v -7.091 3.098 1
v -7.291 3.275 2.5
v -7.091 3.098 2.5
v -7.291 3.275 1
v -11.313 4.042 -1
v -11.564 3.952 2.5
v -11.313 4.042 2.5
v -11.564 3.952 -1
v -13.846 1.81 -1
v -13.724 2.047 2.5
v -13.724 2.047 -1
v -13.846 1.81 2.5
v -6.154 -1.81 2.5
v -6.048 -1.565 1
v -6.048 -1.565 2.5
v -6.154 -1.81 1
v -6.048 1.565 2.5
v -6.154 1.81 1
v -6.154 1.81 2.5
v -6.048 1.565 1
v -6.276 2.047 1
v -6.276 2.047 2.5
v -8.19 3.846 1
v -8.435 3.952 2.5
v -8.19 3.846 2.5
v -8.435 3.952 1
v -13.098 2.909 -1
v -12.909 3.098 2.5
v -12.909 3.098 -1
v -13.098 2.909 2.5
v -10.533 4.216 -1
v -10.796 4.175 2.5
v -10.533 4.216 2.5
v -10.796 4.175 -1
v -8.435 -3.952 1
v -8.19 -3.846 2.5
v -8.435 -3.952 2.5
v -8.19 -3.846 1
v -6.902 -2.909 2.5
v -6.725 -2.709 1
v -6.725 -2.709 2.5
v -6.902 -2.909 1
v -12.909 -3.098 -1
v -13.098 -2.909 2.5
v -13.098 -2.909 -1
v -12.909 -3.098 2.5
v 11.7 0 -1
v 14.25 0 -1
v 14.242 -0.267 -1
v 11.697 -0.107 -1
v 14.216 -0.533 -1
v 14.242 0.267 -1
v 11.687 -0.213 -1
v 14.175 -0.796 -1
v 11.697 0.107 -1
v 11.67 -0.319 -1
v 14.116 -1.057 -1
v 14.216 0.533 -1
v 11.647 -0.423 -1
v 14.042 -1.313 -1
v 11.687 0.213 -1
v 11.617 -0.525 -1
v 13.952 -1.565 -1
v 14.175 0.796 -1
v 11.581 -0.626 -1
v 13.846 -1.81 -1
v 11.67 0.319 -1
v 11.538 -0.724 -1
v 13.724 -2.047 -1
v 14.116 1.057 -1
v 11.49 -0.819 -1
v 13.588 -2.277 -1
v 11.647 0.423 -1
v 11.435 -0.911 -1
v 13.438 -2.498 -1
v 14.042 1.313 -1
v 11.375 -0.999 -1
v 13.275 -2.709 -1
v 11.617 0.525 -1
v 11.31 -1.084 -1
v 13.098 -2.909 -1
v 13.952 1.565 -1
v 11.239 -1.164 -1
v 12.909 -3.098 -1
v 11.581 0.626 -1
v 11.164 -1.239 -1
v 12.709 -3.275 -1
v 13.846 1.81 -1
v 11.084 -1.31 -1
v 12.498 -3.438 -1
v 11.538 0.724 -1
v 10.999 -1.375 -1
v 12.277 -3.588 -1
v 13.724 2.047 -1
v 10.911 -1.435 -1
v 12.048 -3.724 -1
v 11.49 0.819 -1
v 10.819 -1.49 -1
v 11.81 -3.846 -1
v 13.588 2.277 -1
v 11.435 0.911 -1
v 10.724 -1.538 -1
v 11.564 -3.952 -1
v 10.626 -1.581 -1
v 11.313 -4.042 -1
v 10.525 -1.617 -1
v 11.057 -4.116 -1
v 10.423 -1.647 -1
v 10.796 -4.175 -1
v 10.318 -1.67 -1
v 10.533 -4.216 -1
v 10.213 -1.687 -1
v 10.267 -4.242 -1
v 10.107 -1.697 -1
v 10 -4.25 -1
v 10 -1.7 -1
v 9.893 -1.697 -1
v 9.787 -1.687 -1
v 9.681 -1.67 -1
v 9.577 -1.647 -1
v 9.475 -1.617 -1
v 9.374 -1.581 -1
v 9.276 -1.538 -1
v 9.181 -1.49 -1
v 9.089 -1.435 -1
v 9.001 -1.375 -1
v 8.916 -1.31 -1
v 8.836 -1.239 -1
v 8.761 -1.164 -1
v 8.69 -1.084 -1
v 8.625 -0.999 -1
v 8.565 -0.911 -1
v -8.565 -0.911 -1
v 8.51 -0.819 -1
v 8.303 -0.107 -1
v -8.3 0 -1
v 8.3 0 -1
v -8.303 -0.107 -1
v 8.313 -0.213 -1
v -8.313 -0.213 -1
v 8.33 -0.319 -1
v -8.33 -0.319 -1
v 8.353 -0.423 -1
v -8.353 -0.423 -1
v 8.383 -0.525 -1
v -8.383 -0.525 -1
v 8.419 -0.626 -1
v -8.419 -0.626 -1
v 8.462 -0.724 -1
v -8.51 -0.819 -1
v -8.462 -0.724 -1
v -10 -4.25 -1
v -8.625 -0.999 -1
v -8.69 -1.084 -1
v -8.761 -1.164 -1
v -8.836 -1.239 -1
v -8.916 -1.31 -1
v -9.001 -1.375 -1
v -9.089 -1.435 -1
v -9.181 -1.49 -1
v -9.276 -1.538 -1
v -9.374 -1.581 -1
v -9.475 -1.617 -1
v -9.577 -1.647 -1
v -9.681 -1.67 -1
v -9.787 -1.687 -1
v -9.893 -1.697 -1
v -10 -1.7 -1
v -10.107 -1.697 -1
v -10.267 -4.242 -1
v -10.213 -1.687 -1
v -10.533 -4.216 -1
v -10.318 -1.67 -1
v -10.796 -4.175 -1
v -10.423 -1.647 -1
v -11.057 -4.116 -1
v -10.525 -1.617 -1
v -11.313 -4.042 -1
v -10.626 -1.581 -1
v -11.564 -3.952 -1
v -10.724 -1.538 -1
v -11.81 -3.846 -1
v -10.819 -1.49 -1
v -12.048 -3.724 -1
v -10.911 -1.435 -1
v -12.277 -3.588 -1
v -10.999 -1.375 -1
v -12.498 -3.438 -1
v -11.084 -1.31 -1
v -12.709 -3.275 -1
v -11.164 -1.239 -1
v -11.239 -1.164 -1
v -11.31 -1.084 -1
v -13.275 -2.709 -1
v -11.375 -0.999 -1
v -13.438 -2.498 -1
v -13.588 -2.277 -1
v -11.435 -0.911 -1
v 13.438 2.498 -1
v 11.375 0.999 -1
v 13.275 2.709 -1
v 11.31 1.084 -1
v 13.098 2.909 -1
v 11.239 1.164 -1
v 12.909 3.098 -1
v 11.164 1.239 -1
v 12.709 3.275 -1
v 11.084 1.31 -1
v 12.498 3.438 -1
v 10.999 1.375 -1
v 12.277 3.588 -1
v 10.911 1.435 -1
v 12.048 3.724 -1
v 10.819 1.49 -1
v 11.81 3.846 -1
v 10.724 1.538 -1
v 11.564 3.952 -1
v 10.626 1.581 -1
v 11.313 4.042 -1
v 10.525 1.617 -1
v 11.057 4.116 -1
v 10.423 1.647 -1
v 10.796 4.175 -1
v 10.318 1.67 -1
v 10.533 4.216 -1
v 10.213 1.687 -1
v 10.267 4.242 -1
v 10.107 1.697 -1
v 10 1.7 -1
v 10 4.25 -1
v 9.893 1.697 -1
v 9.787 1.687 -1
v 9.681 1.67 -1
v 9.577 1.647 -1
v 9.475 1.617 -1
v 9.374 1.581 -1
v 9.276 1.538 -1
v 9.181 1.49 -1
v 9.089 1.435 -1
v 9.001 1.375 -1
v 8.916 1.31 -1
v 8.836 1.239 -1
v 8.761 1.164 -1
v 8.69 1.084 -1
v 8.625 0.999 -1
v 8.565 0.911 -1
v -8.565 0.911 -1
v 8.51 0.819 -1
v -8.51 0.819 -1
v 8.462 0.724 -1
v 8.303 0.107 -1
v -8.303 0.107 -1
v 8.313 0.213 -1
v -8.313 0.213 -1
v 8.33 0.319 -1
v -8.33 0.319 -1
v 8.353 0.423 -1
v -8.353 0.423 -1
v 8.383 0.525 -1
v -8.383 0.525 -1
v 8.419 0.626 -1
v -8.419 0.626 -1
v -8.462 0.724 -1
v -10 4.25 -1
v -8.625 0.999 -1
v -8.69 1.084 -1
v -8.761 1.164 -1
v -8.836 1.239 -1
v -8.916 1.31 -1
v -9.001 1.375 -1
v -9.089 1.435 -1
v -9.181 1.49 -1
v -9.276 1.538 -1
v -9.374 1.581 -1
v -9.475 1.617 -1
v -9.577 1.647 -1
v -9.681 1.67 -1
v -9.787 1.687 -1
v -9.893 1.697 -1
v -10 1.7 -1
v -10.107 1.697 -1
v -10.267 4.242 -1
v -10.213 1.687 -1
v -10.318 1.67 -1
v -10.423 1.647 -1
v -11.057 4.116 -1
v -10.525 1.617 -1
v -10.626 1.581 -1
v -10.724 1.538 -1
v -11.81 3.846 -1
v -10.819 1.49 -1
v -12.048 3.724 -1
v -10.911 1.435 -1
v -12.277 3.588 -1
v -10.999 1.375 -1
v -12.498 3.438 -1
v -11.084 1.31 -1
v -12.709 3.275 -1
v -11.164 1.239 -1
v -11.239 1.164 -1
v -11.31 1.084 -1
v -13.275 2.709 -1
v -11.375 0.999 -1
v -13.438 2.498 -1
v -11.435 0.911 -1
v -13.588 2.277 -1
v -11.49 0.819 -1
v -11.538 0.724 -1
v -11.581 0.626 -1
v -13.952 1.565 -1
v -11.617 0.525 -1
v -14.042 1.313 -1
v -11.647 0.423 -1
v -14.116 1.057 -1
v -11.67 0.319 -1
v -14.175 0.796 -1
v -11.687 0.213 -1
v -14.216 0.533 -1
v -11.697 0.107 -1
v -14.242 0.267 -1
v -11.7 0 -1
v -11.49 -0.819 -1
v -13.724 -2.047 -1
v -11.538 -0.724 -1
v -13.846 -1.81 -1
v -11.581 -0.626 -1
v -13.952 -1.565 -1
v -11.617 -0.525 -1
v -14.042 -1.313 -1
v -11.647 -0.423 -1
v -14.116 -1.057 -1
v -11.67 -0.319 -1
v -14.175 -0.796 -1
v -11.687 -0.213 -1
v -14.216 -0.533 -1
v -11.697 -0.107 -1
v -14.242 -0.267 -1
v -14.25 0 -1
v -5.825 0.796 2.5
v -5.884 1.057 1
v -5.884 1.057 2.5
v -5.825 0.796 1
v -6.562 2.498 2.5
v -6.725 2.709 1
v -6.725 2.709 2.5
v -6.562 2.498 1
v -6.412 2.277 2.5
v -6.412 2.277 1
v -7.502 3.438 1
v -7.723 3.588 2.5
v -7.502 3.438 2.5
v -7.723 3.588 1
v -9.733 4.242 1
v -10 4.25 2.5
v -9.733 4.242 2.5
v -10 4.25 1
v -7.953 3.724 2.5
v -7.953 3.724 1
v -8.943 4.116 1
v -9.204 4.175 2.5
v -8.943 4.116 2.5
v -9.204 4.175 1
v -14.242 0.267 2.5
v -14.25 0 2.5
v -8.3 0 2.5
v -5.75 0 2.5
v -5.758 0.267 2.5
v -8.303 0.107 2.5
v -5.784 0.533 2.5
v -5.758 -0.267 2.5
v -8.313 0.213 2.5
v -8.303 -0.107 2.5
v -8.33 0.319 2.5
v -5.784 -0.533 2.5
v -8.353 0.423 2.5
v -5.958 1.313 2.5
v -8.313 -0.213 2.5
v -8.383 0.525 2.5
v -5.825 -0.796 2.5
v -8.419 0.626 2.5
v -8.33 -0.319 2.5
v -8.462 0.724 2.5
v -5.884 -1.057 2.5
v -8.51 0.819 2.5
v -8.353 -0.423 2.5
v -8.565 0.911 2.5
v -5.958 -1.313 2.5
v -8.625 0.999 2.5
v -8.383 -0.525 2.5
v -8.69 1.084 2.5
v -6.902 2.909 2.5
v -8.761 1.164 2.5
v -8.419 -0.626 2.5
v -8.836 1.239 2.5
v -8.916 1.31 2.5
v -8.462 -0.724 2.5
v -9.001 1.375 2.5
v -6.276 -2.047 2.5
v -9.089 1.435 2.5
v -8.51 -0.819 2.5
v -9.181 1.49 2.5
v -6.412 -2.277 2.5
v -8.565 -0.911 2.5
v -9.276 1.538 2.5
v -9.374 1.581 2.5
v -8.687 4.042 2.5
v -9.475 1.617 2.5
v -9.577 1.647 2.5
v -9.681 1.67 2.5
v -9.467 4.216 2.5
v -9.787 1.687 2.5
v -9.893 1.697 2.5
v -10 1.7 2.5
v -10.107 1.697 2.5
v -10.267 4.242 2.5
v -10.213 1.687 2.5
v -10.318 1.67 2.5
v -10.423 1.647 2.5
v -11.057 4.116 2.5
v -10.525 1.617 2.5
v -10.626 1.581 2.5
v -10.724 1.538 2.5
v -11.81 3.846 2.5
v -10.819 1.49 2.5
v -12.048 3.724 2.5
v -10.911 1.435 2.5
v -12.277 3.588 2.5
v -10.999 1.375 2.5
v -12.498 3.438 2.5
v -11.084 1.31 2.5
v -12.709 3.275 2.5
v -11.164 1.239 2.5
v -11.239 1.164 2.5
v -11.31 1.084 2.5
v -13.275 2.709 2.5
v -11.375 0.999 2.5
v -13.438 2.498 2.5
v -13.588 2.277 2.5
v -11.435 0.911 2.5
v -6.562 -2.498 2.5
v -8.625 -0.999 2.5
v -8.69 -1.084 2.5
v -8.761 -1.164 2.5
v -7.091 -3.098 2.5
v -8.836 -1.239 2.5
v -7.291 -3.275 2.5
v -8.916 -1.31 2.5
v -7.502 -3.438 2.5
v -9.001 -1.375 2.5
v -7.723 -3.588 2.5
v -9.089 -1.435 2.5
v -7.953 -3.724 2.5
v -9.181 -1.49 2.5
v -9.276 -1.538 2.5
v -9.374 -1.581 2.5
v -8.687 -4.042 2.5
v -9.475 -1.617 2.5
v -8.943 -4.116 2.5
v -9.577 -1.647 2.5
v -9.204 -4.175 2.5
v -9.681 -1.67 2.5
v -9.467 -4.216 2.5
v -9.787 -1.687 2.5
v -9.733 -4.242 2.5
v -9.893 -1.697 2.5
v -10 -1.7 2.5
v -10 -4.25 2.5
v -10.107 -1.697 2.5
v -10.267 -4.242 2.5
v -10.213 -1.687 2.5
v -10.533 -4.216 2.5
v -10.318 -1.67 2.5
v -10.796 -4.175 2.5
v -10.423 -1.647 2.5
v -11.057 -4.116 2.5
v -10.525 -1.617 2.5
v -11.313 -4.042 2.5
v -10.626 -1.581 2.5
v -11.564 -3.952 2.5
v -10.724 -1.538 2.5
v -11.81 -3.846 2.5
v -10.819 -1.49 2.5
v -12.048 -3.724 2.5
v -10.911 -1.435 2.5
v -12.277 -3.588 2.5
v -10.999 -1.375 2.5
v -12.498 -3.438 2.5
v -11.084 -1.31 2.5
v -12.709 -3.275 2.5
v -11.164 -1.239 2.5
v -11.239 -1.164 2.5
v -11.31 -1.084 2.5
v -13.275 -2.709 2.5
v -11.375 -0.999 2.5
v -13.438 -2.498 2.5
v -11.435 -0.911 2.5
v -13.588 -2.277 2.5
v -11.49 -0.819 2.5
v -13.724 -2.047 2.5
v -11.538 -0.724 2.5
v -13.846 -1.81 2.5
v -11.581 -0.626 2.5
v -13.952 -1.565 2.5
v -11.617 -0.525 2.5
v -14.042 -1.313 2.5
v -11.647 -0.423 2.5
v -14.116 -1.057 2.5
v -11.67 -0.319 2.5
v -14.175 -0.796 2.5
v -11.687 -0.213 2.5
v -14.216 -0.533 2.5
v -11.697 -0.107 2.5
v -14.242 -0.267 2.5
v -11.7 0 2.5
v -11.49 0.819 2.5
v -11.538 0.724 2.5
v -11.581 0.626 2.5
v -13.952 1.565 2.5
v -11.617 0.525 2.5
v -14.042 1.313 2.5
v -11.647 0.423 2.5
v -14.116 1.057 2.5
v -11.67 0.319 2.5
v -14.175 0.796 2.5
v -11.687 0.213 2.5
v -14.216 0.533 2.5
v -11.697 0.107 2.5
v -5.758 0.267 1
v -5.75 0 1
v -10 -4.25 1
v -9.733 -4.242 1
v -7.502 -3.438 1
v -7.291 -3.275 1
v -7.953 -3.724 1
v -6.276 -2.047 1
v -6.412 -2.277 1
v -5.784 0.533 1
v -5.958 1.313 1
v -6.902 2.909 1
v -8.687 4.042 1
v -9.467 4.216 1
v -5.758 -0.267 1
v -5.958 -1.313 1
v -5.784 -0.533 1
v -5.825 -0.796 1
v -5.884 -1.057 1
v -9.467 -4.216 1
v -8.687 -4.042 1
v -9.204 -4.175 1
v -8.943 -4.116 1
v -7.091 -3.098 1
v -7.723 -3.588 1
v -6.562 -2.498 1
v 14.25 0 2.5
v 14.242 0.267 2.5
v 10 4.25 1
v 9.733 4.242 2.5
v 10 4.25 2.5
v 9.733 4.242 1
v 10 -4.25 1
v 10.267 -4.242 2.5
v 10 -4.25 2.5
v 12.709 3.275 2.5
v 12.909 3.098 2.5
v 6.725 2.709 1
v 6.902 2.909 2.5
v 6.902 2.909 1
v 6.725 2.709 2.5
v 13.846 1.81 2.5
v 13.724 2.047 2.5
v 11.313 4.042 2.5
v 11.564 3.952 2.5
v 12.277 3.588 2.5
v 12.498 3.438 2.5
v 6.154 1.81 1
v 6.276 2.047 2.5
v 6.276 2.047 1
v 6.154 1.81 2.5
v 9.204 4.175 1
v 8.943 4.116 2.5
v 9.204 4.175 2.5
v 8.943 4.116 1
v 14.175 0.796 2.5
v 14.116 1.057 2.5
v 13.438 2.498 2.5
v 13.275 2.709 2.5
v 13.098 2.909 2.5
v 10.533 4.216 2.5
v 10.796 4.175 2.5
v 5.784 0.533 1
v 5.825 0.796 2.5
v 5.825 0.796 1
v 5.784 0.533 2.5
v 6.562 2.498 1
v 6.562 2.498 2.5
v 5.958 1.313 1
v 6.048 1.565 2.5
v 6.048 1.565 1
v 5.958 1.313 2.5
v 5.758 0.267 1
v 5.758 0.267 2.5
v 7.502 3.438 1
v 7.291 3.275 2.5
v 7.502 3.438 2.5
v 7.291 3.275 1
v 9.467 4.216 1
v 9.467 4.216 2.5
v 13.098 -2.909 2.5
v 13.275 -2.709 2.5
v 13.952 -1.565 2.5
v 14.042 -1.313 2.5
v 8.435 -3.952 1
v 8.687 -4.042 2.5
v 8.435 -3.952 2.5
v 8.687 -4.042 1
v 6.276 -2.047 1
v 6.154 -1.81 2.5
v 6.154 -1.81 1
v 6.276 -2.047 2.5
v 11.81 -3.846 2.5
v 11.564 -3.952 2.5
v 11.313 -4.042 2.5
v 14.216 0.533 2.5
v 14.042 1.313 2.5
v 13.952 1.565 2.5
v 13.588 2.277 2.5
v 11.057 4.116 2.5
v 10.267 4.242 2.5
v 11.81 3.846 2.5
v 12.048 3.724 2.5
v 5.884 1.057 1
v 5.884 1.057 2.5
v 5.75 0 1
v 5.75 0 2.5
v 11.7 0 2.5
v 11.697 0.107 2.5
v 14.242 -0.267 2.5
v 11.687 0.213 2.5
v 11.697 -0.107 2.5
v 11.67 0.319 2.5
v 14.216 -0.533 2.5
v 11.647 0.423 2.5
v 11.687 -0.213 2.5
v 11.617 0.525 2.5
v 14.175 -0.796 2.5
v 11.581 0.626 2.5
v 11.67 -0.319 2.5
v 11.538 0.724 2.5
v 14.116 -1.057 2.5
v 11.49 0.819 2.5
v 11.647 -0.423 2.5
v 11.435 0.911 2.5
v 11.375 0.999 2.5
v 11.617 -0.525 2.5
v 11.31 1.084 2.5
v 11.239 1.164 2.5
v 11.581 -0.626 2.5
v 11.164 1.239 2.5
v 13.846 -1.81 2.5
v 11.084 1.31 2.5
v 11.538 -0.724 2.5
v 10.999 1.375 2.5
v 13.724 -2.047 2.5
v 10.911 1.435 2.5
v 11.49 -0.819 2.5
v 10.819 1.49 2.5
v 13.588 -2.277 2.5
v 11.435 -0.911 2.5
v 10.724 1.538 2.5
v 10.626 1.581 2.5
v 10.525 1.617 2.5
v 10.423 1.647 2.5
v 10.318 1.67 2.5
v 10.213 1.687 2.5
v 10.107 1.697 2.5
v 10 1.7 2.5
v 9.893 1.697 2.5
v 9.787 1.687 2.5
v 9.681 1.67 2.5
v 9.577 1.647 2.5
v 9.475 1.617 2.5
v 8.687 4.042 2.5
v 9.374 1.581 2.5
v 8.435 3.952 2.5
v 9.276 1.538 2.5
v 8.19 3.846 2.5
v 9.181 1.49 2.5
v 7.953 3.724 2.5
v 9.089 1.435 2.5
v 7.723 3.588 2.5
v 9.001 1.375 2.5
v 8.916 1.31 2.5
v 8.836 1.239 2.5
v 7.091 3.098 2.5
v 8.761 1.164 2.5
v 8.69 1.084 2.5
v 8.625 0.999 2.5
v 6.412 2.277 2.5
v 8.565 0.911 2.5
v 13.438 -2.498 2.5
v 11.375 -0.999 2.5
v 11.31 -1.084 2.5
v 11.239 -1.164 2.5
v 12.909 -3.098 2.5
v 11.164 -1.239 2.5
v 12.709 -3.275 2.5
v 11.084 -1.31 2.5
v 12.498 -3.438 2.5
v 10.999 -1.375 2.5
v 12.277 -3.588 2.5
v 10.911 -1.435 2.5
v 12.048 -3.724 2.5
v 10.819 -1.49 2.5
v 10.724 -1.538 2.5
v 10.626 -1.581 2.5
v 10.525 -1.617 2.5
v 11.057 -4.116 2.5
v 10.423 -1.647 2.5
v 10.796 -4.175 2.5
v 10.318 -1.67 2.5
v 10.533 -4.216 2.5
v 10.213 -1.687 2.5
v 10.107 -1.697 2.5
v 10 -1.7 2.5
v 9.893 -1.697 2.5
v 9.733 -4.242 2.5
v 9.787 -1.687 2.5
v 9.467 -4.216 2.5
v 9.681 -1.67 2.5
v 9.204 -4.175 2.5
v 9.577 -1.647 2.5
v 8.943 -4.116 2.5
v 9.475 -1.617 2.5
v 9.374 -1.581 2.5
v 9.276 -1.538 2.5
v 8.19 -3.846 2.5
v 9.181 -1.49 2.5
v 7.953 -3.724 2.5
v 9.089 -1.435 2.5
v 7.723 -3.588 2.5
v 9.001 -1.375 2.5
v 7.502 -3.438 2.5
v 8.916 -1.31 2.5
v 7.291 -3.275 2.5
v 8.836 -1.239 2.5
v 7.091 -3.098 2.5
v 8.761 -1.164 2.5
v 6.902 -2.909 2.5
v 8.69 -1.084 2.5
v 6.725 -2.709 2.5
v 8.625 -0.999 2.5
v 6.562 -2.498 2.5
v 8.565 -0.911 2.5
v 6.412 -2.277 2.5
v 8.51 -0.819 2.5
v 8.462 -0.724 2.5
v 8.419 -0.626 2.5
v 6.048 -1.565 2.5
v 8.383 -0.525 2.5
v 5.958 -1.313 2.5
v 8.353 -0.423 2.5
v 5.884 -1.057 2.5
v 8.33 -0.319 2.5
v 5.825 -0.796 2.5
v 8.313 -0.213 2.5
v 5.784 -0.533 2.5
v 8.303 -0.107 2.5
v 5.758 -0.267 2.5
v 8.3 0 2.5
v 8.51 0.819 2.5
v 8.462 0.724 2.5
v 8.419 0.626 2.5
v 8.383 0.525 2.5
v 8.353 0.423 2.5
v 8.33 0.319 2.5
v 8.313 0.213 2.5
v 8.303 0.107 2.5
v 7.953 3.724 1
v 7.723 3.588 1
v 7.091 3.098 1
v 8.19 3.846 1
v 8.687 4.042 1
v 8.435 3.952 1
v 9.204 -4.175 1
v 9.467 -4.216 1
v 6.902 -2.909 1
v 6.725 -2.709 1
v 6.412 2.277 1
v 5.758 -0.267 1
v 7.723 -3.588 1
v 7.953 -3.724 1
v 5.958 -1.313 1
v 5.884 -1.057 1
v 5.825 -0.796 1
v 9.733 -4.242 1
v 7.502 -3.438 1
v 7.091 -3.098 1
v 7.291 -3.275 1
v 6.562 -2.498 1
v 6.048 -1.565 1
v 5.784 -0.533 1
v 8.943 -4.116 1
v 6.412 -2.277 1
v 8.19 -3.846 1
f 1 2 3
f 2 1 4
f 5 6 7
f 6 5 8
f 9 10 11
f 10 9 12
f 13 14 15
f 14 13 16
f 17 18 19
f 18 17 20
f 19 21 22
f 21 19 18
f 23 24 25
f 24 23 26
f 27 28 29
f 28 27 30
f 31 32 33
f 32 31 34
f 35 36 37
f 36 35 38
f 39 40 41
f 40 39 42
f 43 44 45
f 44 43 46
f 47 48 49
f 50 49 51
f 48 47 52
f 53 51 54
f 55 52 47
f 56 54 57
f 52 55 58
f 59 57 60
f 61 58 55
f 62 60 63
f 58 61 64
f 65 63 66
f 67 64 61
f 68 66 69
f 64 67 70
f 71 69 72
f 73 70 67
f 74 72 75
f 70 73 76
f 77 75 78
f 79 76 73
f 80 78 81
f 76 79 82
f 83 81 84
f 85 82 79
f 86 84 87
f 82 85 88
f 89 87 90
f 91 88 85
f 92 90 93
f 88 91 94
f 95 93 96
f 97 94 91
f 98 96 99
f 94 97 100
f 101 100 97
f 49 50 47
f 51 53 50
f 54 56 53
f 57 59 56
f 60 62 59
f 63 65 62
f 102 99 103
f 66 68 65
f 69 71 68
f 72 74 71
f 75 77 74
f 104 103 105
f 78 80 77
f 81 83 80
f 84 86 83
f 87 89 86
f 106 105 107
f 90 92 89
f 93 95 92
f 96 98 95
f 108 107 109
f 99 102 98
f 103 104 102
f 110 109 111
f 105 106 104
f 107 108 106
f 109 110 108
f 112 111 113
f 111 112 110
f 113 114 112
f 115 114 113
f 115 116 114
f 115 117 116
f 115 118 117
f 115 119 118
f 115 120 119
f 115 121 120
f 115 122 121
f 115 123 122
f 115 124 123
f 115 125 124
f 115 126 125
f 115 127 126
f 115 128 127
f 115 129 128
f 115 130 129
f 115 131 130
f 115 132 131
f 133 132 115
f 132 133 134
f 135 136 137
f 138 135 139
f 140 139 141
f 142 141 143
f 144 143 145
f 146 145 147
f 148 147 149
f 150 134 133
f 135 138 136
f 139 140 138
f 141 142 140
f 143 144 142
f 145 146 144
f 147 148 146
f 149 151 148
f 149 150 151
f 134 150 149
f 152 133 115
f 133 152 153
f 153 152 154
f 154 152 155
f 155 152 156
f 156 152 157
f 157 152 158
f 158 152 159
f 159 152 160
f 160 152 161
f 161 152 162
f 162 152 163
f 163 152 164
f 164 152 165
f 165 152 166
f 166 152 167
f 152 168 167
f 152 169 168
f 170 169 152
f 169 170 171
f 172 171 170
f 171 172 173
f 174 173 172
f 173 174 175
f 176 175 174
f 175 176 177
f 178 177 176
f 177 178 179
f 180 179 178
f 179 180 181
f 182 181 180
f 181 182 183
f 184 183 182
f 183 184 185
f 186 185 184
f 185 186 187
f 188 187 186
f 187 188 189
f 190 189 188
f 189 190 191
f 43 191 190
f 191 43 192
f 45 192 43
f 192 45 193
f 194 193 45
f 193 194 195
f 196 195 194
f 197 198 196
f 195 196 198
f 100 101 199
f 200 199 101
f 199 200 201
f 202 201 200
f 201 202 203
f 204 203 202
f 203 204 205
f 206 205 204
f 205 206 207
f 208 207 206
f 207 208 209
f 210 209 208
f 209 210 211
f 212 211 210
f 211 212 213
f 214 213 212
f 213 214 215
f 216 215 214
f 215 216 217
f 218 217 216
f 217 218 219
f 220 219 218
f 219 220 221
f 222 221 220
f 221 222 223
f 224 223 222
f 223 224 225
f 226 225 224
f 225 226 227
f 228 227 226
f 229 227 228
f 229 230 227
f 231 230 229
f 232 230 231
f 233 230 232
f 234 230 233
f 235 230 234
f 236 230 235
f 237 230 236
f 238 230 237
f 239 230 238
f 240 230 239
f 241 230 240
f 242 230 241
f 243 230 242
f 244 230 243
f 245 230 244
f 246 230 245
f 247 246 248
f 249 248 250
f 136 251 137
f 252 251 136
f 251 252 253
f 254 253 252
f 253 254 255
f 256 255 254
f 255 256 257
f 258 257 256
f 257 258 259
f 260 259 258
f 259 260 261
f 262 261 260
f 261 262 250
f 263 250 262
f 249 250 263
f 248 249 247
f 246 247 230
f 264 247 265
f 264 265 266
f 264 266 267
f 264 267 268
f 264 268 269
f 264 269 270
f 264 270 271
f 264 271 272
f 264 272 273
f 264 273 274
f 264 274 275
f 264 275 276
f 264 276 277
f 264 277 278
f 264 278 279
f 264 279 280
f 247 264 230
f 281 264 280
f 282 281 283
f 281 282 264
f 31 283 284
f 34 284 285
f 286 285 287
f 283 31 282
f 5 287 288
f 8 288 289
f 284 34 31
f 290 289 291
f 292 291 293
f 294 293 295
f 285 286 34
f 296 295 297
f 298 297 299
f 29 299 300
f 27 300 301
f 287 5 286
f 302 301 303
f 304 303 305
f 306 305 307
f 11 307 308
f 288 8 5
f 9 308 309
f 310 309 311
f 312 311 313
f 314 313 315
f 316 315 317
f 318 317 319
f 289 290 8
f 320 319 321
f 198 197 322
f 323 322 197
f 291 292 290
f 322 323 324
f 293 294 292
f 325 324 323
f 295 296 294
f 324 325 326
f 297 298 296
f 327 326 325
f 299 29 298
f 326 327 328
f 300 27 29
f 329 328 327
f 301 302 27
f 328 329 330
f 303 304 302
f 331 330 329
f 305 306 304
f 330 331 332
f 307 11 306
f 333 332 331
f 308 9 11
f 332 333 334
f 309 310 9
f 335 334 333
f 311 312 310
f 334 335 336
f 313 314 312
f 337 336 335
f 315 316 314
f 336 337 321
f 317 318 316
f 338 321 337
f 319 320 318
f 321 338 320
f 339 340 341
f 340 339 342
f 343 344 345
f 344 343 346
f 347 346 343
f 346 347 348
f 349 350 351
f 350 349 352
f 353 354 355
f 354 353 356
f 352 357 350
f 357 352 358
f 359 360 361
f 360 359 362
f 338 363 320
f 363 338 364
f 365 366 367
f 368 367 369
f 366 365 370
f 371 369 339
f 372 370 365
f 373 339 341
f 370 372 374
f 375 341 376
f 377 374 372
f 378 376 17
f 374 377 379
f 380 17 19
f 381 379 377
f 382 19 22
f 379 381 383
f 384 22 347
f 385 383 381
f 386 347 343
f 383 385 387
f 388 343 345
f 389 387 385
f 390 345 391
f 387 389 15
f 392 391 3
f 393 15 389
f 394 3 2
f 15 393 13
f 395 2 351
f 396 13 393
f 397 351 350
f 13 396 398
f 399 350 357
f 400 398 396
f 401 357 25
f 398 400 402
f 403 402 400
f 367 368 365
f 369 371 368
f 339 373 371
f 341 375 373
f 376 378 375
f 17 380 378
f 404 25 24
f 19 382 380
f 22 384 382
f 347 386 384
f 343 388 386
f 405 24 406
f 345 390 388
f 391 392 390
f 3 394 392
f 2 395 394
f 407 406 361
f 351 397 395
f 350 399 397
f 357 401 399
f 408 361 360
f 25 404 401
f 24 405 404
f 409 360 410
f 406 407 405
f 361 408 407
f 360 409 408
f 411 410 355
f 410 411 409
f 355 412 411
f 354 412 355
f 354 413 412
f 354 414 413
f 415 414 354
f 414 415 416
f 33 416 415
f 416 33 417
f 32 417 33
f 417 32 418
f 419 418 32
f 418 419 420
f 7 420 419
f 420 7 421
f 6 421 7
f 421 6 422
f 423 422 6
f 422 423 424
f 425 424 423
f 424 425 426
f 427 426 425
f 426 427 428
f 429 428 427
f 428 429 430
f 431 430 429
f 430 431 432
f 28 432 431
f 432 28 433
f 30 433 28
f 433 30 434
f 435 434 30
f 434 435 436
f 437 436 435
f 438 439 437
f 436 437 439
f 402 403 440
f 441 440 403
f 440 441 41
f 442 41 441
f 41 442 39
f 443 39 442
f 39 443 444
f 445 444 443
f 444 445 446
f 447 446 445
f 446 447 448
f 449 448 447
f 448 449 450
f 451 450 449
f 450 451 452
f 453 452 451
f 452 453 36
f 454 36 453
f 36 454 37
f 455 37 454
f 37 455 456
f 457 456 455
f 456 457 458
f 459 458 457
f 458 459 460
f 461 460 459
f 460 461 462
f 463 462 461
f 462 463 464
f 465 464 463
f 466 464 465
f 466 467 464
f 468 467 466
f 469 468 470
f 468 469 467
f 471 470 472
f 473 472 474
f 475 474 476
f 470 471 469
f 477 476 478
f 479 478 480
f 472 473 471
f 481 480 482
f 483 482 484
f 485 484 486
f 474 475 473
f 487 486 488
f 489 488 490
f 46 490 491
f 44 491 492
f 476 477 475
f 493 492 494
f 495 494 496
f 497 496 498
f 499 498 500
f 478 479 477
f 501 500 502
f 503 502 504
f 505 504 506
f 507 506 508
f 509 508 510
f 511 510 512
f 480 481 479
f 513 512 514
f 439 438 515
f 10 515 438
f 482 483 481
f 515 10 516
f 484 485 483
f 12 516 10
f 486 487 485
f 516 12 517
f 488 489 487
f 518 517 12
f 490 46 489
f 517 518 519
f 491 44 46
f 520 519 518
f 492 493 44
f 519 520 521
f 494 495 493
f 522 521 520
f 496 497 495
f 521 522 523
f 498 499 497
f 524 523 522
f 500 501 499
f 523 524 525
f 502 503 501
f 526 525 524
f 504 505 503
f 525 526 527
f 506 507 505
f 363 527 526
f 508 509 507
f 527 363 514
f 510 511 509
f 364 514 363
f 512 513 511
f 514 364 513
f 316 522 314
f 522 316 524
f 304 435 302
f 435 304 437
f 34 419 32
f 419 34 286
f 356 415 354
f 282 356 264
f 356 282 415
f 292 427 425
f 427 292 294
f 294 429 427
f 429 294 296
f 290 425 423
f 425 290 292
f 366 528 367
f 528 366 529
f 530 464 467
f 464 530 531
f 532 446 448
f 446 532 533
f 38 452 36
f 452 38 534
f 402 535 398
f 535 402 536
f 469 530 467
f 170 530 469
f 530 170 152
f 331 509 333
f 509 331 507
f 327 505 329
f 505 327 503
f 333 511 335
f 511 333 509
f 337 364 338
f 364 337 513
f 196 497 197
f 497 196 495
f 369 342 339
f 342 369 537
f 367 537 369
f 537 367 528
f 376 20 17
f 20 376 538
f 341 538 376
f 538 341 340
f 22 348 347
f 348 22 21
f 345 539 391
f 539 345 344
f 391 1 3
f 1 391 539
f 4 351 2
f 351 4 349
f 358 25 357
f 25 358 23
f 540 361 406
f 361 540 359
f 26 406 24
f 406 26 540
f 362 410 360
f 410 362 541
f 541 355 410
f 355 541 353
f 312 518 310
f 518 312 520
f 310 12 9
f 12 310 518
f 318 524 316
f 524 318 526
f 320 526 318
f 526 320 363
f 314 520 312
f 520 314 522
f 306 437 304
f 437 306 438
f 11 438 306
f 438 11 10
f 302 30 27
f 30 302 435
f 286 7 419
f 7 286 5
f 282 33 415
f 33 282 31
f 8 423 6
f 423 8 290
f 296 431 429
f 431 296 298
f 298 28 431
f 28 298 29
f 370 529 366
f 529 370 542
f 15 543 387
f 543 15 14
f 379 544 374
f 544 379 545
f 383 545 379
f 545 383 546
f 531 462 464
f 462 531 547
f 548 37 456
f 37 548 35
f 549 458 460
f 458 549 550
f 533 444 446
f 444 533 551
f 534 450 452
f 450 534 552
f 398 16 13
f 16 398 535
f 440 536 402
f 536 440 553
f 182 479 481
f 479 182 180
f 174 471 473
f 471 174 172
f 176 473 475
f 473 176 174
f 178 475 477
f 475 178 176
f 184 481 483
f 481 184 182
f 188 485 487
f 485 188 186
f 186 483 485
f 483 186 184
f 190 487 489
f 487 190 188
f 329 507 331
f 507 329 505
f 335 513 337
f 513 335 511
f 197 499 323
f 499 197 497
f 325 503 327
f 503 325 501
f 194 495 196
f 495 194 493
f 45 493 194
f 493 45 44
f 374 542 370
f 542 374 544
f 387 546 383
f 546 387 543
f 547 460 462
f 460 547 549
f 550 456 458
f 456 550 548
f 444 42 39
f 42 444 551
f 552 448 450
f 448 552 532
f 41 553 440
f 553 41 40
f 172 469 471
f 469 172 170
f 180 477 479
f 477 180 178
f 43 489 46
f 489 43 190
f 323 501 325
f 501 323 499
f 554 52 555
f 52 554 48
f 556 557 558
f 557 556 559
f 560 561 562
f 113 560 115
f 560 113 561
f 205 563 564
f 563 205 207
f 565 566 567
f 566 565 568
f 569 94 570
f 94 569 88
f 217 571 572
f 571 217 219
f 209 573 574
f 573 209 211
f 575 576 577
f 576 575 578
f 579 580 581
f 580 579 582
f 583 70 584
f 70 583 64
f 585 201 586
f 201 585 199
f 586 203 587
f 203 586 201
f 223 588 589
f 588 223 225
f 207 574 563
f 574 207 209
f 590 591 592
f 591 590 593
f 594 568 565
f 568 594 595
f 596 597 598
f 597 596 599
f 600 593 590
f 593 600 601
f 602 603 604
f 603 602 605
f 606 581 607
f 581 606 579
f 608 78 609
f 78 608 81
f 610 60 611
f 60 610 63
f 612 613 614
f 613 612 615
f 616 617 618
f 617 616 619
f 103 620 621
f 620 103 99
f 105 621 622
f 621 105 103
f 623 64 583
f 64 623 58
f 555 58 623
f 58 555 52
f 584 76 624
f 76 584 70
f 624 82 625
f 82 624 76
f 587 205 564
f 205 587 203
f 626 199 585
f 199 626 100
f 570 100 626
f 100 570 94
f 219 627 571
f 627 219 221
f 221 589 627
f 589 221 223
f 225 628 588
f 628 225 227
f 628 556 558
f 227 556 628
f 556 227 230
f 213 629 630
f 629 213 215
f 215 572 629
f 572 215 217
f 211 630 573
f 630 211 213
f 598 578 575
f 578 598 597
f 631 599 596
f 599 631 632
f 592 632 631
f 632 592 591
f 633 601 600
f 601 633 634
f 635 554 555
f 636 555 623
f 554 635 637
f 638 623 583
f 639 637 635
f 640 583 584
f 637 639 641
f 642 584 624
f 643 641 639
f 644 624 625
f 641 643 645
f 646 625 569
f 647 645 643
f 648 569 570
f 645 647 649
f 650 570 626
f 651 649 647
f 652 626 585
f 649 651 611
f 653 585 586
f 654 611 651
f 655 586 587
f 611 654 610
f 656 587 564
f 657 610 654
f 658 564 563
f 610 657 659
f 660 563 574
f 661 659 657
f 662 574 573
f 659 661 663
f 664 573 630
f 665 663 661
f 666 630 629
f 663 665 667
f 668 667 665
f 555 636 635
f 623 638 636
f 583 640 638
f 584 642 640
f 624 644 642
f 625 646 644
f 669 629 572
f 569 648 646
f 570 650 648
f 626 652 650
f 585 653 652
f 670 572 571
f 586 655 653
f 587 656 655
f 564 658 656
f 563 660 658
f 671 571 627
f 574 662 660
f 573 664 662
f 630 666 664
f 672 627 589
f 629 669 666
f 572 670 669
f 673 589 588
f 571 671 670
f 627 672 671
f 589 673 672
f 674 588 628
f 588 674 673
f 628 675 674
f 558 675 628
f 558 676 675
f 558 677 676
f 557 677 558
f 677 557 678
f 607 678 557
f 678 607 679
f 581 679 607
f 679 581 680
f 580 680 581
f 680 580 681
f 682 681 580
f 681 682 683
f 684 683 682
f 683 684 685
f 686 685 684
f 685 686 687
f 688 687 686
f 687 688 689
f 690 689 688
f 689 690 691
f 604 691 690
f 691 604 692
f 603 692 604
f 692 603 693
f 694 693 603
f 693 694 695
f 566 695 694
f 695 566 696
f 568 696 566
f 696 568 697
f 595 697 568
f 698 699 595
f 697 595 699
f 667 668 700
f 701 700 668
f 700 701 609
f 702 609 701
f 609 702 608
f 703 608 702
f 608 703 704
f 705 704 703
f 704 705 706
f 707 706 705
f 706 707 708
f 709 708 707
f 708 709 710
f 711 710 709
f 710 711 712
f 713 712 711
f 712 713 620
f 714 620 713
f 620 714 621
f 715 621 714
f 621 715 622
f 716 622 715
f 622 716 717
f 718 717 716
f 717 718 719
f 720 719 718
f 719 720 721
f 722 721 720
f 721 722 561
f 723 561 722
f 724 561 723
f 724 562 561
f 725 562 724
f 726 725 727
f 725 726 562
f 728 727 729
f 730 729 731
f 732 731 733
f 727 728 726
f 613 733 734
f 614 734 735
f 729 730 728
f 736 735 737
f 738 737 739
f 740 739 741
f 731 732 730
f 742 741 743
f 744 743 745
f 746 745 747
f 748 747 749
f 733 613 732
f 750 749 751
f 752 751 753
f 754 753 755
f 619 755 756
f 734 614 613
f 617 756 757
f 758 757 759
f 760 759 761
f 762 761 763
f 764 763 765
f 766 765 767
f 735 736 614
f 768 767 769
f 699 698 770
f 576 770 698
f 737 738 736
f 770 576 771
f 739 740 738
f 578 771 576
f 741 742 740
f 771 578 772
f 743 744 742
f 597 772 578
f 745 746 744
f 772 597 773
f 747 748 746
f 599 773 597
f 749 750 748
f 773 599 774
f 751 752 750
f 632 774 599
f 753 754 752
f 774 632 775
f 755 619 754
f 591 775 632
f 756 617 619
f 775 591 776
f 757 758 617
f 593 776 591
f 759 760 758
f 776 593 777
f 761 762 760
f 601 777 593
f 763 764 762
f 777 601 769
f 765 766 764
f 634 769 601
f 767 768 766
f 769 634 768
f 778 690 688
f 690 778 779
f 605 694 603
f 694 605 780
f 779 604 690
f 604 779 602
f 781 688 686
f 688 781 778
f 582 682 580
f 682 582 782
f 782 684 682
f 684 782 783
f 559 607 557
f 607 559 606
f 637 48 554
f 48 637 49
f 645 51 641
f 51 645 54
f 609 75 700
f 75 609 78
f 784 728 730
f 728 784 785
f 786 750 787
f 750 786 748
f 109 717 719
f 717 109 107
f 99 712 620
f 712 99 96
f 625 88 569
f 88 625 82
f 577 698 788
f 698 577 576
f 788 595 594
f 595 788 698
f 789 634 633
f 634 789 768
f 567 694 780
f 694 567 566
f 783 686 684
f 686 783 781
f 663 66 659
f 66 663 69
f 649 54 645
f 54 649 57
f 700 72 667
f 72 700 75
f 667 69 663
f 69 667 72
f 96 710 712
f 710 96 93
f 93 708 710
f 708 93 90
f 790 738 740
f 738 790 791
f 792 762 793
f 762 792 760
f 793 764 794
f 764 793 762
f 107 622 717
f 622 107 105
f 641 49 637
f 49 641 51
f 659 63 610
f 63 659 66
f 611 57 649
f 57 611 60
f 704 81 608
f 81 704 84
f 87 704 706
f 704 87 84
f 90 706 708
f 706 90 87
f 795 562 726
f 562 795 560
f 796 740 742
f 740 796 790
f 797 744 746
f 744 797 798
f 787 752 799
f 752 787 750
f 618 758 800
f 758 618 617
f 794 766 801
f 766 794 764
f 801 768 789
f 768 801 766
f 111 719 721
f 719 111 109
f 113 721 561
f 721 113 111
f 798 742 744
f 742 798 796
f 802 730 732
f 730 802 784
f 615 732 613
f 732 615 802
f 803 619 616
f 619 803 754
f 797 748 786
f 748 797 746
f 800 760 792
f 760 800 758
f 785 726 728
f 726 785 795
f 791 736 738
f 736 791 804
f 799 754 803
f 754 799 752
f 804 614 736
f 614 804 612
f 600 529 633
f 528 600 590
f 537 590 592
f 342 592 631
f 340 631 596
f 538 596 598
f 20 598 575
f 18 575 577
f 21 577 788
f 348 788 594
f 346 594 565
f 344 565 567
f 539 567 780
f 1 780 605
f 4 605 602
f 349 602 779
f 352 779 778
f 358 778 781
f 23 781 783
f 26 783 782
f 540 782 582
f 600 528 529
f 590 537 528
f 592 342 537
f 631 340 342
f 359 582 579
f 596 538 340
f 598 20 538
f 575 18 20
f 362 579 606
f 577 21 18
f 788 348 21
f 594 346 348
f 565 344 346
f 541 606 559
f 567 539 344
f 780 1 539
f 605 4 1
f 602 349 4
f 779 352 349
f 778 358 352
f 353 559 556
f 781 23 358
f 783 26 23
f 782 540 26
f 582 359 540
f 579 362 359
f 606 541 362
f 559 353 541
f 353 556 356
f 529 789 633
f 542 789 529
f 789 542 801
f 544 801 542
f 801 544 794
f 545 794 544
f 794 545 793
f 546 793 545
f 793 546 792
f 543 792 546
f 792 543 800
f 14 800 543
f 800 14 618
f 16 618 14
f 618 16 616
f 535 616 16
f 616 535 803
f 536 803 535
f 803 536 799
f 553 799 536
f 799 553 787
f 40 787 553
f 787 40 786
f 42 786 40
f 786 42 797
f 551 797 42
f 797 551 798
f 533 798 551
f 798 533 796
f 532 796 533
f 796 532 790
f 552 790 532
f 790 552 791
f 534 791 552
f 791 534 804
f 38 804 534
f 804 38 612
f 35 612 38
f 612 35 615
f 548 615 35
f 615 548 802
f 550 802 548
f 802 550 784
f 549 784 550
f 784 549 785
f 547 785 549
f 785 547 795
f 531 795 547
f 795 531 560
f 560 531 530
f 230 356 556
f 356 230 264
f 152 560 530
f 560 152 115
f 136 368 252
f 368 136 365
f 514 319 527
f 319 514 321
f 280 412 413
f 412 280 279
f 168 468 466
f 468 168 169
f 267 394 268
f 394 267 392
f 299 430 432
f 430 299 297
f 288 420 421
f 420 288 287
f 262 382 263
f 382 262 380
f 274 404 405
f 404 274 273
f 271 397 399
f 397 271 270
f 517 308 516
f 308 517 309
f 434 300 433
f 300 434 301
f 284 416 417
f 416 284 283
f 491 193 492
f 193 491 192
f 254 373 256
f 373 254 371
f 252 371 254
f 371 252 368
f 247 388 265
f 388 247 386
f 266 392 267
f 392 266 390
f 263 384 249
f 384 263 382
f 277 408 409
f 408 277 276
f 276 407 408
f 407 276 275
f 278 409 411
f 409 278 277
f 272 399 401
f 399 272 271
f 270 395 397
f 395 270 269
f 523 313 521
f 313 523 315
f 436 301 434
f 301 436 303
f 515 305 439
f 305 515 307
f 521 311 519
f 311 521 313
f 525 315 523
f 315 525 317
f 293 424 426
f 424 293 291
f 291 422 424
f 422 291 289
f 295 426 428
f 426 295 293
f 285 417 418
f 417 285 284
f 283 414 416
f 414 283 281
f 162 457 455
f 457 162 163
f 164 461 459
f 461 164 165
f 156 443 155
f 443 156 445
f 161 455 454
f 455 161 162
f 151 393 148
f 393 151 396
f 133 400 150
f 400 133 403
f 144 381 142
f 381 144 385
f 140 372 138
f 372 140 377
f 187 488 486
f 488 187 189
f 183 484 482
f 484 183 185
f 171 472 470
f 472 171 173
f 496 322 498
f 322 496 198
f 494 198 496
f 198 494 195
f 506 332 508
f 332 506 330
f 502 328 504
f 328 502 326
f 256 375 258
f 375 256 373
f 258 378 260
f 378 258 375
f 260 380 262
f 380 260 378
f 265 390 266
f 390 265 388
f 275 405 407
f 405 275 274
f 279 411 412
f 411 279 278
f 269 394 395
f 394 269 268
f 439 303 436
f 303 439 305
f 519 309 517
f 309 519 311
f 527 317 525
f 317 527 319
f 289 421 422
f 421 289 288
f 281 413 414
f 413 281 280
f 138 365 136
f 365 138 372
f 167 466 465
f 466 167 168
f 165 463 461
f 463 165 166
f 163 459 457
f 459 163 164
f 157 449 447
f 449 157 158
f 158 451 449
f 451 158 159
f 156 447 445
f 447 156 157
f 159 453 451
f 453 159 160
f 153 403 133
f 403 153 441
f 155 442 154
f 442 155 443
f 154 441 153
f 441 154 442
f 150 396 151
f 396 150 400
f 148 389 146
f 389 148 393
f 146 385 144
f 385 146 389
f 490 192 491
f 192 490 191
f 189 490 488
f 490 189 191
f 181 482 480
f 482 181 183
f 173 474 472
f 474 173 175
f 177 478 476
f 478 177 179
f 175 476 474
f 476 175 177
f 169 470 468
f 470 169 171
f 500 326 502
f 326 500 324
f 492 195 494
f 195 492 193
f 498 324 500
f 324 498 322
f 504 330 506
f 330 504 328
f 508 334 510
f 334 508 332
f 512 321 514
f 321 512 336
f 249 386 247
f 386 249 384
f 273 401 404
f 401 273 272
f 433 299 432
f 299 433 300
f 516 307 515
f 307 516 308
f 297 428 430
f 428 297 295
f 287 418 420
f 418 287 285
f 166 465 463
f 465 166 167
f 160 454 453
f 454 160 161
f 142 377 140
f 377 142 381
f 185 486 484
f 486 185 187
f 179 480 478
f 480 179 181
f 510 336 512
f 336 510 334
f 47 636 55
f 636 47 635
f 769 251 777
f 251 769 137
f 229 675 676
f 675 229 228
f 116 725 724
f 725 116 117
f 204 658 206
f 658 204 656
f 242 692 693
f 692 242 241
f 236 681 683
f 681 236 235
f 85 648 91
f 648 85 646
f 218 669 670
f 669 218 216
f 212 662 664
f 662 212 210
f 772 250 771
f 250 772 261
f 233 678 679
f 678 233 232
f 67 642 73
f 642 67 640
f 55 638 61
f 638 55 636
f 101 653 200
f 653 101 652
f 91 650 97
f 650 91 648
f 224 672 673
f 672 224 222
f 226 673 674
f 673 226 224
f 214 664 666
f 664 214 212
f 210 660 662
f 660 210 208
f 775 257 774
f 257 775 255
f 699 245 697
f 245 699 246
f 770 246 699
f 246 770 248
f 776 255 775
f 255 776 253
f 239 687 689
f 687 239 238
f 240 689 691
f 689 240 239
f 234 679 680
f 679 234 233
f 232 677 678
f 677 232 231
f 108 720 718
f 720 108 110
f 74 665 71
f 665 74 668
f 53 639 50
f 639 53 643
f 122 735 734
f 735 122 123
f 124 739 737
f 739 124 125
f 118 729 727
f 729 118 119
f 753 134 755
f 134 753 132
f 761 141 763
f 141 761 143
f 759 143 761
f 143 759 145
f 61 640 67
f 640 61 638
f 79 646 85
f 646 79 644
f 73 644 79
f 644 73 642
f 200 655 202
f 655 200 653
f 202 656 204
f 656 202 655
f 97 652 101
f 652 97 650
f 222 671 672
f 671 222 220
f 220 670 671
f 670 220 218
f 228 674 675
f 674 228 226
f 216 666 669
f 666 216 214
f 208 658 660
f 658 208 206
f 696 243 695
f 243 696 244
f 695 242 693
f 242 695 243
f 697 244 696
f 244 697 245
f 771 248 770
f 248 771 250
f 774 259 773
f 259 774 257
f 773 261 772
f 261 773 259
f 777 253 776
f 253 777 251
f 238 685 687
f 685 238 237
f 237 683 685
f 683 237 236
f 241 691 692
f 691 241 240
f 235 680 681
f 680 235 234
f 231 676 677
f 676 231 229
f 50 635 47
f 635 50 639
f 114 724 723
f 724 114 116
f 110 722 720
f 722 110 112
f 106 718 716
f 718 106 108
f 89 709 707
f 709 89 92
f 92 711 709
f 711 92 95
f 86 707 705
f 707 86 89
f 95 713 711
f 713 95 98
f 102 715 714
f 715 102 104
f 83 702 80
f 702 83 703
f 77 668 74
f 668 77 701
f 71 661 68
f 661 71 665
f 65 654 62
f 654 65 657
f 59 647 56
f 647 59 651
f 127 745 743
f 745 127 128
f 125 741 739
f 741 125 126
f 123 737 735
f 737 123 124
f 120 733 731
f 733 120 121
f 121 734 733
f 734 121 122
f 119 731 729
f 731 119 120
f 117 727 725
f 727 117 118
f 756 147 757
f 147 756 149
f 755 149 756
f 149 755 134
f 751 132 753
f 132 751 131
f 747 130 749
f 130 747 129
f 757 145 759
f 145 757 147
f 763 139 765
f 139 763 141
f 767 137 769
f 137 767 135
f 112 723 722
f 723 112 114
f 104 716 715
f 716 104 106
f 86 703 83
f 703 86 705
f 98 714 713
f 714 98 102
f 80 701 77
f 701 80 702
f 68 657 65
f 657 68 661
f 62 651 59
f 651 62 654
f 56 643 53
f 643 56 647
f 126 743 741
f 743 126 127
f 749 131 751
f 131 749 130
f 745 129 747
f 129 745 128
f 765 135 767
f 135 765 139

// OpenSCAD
Board_Width                 = 8.5;
Board_Height                = 64;
Board_Thickness             = 2;

Drill_Diameter              = 3.4;
Drill_Radius                = Drill_Diameter/2;

Screw_Head_Rim_Thickness    = 1.25;
Screw_Head_Rim_Height       = 1.5;
Screw_Head_Diameter         = 6;

Screw_Head_Offset_Z         =   Board_Thickness         / 2 +
                                Screw_Head_Rim_Height   / 2;
                                
difference()
{
    union()
    {
        cube([14+Screw_Head_Diameter, Board_Width, Board_Thickness], center = true, $fn = 100);
        
        for(i = [   [-(7+Screw_Head_Diameter/2), 0, Screw_Head_Rim_Height/2],
                    [+(7+Screw_Head_Diameter/2), 0, Screw_Head_Rim_Height/2]
                ])
        {
            translate(i)
            cylinder(h = Board_Thickness + Screw_Head_Rim_Height, r=Screw_Head_Diameter/2 + Screw_Head_Rim_Thickness, center = true, $fn = 100);
        }
    }
    
    
     for(i =    [   [-(7+Screw_Head_Diameter/2), 0, Board_Thickness/2],
                    [+(7+Screw_Head_Diameter/2), 0, Board_Thickness/2]
                ])
        {
            translate(i)
            cylinder(h = Board_Thickness * 20, r=Drill_Radius, center = true, $fn = 100);
        }
}
